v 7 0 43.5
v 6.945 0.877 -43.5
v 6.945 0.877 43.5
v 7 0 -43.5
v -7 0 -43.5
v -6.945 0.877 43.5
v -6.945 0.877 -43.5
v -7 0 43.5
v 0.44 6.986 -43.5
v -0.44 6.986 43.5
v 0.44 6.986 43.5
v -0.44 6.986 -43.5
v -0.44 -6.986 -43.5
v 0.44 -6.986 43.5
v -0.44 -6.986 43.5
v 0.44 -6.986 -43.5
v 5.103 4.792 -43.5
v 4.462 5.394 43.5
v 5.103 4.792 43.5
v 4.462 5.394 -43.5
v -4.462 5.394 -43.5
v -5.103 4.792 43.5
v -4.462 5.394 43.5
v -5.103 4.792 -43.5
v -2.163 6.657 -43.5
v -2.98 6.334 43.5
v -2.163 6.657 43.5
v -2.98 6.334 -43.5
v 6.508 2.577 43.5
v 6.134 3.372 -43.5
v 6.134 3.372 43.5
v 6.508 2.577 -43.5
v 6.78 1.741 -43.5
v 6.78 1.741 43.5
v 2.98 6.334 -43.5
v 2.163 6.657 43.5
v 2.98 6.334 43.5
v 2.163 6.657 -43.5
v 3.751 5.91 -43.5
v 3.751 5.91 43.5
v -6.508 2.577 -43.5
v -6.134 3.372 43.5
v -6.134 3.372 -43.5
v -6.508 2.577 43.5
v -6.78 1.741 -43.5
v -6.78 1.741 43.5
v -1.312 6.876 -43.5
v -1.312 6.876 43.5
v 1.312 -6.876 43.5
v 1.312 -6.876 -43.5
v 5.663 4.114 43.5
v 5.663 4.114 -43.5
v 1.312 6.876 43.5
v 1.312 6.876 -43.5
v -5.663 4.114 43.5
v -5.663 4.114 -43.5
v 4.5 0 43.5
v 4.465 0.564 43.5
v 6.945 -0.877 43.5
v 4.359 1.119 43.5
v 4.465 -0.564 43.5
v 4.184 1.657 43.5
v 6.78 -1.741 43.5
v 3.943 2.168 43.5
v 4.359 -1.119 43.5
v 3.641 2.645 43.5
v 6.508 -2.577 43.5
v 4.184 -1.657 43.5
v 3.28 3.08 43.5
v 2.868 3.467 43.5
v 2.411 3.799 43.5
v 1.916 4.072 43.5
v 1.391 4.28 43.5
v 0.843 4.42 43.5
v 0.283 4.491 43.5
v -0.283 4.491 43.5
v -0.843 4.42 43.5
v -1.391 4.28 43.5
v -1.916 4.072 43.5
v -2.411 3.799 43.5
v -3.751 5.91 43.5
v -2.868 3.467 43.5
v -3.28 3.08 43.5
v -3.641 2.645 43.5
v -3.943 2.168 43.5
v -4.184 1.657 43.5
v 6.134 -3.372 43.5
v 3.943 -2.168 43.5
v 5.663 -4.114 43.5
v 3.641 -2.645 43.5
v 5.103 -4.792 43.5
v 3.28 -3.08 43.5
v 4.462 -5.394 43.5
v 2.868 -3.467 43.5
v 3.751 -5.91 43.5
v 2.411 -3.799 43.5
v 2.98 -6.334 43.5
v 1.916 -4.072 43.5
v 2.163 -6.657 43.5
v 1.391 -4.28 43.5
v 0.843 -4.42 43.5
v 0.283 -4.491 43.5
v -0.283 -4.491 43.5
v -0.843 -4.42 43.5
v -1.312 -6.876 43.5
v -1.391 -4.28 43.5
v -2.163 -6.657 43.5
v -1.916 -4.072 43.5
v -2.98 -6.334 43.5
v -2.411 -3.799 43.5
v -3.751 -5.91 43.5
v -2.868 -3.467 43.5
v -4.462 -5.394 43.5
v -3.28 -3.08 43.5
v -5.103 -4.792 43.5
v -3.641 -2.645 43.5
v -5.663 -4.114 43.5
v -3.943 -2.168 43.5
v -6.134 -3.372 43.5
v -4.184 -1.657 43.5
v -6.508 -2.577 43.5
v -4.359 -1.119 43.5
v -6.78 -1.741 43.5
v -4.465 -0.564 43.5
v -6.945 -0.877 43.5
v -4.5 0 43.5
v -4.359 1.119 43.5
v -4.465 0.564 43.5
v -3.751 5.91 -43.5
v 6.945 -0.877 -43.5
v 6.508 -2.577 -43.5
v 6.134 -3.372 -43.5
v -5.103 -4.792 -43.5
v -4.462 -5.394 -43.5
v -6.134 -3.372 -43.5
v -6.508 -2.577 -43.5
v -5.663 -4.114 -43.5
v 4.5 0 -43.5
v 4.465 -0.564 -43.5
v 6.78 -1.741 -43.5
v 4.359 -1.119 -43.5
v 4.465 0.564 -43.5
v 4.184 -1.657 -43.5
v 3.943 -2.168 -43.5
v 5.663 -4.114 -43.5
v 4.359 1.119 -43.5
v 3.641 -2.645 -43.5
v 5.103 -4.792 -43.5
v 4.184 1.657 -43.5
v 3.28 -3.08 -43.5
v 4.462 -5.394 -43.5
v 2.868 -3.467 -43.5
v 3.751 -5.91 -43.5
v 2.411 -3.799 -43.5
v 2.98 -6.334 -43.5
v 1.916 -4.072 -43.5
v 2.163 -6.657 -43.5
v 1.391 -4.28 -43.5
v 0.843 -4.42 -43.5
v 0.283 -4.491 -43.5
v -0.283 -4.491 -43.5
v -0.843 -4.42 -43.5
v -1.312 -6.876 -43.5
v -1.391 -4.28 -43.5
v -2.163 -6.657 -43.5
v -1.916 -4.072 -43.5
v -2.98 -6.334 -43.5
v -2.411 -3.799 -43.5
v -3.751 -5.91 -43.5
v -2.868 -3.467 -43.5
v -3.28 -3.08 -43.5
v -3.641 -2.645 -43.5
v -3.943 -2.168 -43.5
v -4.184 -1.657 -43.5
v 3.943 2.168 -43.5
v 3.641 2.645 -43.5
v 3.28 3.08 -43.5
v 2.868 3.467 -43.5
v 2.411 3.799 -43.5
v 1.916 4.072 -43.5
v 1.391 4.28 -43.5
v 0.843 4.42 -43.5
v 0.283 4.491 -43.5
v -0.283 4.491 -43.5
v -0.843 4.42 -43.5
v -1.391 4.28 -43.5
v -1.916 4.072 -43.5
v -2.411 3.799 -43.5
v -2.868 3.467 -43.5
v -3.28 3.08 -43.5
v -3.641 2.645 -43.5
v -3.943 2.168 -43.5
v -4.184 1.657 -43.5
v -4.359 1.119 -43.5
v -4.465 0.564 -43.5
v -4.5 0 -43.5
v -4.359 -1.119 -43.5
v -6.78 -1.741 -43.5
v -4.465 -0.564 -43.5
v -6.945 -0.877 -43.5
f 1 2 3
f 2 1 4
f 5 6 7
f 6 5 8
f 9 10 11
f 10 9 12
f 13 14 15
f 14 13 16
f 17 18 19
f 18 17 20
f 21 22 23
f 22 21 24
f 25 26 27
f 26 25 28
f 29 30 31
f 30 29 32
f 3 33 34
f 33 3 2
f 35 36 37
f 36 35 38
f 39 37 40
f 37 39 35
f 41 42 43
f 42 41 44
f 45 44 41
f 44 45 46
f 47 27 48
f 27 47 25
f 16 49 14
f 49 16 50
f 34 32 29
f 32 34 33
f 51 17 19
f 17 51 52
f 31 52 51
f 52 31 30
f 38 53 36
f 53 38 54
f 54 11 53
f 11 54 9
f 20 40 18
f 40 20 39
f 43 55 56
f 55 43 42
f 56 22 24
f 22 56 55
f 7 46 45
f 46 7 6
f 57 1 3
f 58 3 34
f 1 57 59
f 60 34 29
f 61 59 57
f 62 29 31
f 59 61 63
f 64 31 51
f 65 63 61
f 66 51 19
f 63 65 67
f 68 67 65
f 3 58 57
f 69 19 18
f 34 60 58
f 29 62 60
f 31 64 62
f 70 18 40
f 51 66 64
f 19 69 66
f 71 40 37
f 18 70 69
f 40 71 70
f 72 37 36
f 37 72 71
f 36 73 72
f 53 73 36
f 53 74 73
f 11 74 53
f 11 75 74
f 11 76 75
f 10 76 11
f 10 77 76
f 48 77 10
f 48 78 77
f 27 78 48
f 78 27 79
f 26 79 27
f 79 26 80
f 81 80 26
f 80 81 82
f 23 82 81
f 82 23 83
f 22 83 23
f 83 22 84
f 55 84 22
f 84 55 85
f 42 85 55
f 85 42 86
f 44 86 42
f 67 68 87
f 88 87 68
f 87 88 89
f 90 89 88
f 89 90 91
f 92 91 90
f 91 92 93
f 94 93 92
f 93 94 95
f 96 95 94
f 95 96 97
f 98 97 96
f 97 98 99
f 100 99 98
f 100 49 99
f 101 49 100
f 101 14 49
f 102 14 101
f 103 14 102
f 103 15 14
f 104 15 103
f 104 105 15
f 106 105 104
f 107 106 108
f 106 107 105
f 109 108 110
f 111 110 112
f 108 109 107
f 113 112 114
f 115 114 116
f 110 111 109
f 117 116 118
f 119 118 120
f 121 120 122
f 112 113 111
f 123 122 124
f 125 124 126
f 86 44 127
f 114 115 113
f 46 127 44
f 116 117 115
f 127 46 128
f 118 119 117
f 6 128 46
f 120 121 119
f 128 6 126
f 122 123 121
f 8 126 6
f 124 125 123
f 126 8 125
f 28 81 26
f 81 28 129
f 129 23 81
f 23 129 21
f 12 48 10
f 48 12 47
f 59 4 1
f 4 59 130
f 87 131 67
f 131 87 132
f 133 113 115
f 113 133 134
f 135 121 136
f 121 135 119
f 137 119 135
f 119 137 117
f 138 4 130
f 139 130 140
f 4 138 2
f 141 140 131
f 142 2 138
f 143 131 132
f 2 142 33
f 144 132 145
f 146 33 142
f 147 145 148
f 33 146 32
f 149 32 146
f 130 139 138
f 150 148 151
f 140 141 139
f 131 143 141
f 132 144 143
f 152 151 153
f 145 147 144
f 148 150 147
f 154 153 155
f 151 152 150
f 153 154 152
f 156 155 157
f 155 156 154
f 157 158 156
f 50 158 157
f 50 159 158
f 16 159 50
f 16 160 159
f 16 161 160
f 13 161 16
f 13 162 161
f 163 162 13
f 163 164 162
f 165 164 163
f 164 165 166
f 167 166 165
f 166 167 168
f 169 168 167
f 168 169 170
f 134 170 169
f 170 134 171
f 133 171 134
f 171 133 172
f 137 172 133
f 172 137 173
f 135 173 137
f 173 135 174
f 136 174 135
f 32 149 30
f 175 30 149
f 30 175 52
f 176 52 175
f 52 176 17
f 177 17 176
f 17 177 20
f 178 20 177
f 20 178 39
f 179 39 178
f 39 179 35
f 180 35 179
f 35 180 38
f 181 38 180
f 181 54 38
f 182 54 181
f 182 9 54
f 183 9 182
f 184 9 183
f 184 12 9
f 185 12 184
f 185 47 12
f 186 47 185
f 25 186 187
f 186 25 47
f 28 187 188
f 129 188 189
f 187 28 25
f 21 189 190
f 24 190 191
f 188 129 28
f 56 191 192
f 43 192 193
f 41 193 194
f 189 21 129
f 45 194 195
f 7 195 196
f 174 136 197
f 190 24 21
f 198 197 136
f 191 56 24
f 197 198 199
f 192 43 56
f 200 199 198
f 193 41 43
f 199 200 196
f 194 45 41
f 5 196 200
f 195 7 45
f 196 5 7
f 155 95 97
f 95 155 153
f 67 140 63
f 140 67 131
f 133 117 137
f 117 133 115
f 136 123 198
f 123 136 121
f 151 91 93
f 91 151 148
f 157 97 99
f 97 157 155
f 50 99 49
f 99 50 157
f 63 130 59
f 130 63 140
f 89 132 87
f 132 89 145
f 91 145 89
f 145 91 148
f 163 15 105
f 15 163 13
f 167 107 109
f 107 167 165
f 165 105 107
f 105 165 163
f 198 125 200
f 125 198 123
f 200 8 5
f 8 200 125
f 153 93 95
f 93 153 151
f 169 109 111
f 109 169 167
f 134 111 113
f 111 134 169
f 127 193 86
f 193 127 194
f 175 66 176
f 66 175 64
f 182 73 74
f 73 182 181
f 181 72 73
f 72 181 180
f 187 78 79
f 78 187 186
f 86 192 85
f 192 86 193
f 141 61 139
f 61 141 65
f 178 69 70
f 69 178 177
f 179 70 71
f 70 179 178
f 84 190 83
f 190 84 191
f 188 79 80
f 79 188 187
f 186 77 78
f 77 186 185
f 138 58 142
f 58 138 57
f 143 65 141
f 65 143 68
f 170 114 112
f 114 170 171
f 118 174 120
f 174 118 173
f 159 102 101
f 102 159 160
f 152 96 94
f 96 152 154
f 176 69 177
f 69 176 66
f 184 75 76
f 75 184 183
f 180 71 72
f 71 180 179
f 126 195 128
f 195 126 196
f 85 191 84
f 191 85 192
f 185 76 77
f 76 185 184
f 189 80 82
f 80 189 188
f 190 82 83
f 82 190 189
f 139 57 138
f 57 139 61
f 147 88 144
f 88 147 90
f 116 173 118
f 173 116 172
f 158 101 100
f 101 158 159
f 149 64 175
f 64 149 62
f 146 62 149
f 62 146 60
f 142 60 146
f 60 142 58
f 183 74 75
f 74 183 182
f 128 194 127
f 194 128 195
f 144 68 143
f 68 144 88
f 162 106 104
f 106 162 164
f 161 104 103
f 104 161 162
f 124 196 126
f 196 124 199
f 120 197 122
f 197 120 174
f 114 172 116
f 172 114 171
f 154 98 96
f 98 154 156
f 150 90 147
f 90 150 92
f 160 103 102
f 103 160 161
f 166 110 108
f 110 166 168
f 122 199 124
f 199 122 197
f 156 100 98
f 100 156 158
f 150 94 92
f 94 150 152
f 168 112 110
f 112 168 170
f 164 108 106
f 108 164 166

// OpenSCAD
$fn = 50;


difference() {
	union() {
		translate(v = [0, 0, -43.5000000000]) {
			cylinder(h = 87, r = 7.0000000000);
		}
	}
	union() {
		translate(v = [0, 0, -100.0000000000]) {
			cylinder(h = 200, r = 4.5000000000);
		}
	}
}
